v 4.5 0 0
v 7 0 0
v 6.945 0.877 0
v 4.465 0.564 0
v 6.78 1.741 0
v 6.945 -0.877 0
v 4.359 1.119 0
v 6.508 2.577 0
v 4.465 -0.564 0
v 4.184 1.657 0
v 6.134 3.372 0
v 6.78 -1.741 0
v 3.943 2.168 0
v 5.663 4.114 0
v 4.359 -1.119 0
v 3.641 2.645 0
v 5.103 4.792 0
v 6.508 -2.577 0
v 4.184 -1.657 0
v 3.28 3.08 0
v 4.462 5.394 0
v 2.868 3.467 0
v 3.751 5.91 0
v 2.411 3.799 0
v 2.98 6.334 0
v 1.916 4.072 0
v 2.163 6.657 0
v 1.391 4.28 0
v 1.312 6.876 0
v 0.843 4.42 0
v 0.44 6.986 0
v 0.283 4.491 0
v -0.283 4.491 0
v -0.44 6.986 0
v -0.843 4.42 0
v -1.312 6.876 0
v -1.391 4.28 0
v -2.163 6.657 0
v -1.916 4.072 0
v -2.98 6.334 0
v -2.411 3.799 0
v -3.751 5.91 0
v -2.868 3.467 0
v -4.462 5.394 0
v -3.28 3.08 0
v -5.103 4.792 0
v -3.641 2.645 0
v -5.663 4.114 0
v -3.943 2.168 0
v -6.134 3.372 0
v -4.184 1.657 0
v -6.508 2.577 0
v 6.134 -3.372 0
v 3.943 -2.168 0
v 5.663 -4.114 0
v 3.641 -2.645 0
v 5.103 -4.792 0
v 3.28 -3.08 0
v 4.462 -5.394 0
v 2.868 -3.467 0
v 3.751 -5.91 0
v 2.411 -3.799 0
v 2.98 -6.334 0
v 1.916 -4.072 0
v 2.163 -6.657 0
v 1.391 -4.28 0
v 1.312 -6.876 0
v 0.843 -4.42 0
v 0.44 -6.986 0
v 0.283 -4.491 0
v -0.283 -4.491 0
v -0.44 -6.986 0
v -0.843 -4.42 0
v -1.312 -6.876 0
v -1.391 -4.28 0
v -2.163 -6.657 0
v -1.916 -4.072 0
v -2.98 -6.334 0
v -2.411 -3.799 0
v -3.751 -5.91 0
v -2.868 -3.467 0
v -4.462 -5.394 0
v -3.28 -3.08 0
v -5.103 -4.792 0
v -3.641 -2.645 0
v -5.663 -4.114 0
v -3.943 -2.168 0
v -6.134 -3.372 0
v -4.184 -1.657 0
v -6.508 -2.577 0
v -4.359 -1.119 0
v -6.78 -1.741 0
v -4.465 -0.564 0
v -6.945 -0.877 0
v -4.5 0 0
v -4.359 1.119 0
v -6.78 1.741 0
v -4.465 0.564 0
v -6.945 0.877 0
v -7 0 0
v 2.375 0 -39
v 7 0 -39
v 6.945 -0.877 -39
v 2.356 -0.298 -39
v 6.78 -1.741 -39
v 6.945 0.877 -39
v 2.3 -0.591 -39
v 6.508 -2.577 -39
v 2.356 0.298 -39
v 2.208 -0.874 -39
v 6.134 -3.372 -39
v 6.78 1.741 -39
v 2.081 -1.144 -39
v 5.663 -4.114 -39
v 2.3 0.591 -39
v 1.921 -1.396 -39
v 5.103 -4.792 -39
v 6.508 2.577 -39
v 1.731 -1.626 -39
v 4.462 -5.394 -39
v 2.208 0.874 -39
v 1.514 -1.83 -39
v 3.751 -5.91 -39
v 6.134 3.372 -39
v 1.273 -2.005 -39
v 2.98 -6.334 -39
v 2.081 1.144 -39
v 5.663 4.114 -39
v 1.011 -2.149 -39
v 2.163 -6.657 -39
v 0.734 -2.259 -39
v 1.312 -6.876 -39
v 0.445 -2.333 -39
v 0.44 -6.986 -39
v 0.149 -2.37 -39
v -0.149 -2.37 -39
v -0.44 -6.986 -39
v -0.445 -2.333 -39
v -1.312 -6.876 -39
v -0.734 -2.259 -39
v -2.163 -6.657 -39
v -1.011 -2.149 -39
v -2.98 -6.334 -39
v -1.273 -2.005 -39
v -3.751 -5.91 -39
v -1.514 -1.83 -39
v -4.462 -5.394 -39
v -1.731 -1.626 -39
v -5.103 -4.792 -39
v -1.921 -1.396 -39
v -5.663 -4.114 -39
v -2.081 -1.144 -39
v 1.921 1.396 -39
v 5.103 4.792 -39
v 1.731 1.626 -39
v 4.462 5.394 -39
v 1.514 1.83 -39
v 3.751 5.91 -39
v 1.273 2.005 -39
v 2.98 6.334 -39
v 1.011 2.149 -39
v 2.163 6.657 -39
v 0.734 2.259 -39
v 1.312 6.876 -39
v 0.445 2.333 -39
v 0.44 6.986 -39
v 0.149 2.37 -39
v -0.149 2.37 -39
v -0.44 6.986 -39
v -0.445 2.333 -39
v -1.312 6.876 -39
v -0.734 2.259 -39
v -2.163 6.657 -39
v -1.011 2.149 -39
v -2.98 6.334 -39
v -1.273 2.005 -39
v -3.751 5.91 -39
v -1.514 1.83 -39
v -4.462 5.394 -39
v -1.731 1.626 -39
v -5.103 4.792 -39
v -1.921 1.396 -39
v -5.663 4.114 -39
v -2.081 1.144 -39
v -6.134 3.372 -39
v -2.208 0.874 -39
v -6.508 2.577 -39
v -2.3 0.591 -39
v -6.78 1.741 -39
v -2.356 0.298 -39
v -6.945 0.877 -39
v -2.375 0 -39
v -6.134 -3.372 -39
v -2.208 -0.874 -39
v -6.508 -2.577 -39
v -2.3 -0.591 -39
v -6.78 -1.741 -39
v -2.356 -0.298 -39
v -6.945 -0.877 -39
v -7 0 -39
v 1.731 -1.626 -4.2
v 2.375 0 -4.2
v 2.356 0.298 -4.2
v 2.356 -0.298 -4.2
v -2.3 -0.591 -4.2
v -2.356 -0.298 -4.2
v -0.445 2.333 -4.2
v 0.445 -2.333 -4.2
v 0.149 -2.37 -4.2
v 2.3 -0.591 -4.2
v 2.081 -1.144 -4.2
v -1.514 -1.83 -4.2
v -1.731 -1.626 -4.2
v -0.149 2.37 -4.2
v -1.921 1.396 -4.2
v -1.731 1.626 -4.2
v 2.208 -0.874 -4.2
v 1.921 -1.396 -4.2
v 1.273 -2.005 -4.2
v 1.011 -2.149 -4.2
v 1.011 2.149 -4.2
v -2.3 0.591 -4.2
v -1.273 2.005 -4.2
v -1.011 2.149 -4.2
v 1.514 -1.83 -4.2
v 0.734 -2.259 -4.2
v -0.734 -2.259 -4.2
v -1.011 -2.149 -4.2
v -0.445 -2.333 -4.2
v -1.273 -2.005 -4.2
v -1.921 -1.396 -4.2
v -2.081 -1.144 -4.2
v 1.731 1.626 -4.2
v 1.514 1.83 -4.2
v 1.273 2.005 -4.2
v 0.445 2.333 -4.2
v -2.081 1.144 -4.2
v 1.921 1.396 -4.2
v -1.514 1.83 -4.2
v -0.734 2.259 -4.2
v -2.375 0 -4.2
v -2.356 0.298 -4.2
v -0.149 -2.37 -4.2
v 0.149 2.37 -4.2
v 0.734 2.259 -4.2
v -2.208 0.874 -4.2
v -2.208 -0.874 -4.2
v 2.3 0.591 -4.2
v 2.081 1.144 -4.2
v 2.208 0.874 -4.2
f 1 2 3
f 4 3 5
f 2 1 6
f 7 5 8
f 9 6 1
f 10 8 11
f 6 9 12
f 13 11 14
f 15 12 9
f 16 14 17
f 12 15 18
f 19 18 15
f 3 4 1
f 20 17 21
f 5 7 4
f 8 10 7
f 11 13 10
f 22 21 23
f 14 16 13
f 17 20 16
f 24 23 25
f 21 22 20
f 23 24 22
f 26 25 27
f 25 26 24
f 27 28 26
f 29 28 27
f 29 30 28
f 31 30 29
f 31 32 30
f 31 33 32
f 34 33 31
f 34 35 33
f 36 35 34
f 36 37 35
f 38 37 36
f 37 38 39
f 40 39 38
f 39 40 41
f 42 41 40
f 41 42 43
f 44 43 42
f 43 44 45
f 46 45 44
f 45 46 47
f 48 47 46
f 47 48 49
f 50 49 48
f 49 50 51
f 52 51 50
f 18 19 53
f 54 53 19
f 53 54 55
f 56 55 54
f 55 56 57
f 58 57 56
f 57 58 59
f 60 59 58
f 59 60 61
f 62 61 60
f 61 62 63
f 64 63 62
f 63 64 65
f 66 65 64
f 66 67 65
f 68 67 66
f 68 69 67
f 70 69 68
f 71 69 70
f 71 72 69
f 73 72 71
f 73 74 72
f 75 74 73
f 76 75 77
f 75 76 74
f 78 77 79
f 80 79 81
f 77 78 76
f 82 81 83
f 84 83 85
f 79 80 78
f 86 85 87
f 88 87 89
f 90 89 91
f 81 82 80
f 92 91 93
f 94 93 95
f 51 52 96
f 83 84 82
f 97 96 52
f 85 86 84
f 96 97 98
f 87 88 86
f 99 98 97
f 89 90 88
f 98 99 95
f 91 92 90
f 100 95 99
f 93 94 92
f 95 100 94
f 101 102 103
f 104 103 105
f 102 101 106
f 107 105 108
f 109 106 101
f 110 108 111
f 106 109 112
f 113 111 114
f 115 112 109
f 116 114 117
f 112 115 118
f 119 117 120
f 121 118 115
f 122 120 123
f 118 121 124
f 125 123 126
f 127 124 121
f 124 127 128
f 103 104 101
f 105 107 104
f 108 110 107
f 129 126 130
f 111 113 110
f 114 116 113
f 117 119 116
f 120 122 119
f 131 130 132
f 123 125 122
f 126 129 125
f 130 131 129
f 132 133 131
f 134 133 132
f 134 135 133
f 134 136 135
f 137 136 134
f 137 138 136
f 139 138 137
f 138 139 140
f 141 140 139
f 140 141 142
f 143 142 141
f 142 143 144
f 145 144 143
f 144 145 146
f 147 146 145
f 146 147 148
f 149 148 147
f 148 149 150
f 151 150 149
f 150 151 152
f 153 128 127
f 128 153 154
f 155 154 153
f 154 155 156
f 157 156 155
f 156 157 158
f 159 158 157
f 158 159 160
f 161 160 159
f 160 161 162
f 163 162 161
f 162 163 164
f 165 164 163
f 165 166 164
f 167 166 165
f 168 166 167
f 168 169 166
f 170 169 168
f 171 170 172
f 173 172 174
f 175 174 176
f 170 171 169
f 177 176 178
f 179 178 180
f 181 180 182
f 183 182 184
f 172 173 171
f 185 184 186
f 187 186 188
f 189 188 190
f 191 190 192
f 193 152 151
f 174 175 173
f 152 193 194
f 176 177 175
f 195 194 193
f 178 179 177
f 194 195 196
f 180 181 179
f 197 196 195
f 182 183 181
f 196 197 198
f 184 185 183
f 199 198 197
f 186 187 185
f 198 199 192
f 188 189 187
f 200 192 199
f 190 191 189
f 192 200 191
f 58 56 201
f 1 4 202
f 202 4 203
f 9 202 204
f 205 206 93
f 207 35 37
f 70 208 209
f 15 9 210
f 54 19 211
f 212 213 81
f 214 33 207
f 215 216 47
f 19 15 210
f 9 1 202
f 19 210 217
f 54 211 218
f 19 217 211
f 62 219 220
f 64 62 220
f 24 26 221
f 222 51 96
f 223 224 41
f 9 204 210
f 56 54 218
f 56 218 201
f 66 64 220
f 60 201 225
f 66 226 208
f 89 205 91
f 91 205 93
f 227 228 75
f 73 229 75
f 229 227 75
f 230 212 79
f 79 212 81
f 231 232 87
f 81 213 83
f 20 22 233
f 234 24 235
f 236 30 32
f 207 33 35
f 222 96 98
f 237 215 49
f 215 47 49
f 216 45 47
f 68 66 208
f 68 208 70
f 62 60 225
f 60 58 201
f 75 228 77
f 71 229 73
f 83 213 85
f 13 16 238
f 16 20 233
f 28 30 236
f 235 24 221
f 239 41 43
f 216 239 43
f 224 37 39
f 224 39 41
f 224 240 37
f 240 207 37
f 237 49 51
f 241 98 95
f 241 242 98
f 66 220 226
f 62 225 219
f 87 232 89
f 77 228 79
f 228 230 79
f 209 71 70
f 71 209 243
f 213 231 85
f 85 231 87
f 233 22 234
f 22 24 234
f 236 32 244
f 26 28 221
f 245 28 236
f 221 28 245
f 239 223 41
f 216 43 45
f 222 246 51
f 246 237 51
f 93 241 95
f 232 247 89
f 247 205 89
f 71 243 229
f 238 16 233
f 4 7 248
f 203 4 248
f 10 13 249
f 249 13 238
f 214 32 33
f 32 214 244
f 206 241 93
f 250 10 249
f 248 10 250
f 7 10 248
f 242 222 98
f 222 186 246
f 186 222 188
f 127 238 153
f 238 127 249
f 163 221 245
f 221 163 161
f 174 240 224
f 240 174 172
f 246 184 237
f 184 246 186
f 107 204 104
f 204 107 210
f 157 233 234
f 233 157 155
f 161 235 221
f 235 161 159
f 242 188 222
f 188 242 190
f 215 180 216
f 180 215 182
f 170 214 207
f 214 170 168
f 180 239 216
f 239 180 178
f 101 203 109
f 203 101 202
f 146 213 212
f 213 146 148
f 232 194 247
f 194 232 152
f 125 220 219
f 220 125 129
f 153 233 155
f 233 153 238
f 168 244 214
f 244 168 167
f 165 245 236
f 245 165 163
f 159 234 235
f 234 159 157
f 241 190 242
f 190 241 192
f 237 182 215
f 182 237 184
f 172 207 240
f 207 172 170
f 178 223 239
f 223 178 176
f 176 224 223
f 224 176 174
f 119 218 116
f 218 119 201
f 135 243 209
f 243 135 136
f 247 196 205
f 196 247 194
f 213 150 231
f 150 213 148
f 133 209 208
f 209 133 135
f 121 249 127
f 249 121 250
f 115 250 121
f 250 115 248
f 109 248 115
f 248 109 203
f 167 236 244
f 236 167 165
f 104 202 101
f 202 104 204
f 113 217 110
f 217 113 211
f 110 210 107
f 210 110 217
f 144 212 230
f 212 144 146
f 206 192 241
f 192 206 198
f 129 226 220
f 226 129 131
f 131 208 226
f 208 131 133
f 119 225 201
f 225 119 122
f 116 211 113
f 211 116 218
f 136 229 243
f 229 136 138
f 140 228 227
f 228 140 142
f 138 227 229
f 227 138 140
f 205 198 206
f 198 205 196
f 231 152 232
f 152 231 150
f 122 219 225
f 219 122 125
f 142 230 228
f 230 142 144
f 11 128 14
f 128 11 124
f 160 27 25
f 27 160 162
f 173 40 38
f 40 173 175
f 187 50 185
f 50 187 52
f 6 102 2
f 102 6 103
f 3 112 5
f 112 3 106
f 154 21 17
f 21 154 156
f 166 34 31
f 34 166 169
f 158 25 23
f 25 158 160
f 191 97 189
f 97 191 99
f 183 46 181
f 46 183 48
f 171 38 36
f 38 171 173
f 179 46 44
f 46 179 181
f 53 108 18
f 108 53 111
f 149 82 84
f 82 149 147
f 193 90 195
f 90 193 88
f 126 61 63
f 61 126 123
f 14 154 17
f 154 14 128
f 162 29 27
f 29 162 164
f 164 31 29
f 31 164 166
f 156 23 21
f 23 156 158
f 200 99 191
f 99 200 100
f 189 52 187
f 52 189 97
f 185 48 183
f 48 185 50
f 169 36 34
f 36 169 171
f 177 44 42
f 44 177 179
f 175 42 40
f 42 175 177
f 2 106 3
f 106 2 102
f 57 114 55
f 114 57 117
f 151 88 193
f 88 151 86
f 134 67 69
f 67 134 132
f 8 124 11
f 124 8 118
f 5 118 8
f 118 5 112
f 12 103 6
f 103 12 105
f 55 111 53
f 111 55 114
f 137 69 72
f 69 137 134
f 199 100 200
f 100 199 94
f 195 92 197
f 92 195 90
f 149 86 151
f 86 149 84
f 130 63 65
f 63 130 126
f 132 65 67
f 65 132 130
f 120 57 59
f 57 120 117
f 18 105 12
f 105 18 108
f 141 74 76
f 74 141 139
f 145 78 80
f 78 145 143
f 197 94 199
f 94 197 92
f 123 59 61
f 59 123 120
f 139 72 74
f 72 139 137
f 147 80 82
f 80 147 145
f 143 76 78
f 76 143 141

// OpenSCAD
$fn = 50;


difference() {
	union() {
		translate(v = [0, 0, -39.0000000000]) {
			cylinder(h = 39, r = 7.0000000000);
		}
		cylinder(h = 0, r = 13.0000000000);
	}
	union() {
		translate(v = [0, 0, 0]) {
			rotate(a = [0, 0, 0]) {
				difference() {
					union() {
						#translate(v = [0, 0, -39.0000000000]) {
							cylinder(h = 39, r = 2.2500000000);
						}
						#translate(v = [0, 0, -4.2000000000]) {
							cylinder(h = 4.2000000000, r1 = 2.3750000000, r2 = 4.5000000000);
						}
						#translate(v = [0, 0, -39.0000000000]) {
							cylinder(h = 39, r = 2.3750000000);
						}
						#translate(v = [0, 0, -39.0000000000]) {
							cylinder(h = 39, r = 2.2500000000);
						}
					}
					union();
				}
			}
		}
	}
}
